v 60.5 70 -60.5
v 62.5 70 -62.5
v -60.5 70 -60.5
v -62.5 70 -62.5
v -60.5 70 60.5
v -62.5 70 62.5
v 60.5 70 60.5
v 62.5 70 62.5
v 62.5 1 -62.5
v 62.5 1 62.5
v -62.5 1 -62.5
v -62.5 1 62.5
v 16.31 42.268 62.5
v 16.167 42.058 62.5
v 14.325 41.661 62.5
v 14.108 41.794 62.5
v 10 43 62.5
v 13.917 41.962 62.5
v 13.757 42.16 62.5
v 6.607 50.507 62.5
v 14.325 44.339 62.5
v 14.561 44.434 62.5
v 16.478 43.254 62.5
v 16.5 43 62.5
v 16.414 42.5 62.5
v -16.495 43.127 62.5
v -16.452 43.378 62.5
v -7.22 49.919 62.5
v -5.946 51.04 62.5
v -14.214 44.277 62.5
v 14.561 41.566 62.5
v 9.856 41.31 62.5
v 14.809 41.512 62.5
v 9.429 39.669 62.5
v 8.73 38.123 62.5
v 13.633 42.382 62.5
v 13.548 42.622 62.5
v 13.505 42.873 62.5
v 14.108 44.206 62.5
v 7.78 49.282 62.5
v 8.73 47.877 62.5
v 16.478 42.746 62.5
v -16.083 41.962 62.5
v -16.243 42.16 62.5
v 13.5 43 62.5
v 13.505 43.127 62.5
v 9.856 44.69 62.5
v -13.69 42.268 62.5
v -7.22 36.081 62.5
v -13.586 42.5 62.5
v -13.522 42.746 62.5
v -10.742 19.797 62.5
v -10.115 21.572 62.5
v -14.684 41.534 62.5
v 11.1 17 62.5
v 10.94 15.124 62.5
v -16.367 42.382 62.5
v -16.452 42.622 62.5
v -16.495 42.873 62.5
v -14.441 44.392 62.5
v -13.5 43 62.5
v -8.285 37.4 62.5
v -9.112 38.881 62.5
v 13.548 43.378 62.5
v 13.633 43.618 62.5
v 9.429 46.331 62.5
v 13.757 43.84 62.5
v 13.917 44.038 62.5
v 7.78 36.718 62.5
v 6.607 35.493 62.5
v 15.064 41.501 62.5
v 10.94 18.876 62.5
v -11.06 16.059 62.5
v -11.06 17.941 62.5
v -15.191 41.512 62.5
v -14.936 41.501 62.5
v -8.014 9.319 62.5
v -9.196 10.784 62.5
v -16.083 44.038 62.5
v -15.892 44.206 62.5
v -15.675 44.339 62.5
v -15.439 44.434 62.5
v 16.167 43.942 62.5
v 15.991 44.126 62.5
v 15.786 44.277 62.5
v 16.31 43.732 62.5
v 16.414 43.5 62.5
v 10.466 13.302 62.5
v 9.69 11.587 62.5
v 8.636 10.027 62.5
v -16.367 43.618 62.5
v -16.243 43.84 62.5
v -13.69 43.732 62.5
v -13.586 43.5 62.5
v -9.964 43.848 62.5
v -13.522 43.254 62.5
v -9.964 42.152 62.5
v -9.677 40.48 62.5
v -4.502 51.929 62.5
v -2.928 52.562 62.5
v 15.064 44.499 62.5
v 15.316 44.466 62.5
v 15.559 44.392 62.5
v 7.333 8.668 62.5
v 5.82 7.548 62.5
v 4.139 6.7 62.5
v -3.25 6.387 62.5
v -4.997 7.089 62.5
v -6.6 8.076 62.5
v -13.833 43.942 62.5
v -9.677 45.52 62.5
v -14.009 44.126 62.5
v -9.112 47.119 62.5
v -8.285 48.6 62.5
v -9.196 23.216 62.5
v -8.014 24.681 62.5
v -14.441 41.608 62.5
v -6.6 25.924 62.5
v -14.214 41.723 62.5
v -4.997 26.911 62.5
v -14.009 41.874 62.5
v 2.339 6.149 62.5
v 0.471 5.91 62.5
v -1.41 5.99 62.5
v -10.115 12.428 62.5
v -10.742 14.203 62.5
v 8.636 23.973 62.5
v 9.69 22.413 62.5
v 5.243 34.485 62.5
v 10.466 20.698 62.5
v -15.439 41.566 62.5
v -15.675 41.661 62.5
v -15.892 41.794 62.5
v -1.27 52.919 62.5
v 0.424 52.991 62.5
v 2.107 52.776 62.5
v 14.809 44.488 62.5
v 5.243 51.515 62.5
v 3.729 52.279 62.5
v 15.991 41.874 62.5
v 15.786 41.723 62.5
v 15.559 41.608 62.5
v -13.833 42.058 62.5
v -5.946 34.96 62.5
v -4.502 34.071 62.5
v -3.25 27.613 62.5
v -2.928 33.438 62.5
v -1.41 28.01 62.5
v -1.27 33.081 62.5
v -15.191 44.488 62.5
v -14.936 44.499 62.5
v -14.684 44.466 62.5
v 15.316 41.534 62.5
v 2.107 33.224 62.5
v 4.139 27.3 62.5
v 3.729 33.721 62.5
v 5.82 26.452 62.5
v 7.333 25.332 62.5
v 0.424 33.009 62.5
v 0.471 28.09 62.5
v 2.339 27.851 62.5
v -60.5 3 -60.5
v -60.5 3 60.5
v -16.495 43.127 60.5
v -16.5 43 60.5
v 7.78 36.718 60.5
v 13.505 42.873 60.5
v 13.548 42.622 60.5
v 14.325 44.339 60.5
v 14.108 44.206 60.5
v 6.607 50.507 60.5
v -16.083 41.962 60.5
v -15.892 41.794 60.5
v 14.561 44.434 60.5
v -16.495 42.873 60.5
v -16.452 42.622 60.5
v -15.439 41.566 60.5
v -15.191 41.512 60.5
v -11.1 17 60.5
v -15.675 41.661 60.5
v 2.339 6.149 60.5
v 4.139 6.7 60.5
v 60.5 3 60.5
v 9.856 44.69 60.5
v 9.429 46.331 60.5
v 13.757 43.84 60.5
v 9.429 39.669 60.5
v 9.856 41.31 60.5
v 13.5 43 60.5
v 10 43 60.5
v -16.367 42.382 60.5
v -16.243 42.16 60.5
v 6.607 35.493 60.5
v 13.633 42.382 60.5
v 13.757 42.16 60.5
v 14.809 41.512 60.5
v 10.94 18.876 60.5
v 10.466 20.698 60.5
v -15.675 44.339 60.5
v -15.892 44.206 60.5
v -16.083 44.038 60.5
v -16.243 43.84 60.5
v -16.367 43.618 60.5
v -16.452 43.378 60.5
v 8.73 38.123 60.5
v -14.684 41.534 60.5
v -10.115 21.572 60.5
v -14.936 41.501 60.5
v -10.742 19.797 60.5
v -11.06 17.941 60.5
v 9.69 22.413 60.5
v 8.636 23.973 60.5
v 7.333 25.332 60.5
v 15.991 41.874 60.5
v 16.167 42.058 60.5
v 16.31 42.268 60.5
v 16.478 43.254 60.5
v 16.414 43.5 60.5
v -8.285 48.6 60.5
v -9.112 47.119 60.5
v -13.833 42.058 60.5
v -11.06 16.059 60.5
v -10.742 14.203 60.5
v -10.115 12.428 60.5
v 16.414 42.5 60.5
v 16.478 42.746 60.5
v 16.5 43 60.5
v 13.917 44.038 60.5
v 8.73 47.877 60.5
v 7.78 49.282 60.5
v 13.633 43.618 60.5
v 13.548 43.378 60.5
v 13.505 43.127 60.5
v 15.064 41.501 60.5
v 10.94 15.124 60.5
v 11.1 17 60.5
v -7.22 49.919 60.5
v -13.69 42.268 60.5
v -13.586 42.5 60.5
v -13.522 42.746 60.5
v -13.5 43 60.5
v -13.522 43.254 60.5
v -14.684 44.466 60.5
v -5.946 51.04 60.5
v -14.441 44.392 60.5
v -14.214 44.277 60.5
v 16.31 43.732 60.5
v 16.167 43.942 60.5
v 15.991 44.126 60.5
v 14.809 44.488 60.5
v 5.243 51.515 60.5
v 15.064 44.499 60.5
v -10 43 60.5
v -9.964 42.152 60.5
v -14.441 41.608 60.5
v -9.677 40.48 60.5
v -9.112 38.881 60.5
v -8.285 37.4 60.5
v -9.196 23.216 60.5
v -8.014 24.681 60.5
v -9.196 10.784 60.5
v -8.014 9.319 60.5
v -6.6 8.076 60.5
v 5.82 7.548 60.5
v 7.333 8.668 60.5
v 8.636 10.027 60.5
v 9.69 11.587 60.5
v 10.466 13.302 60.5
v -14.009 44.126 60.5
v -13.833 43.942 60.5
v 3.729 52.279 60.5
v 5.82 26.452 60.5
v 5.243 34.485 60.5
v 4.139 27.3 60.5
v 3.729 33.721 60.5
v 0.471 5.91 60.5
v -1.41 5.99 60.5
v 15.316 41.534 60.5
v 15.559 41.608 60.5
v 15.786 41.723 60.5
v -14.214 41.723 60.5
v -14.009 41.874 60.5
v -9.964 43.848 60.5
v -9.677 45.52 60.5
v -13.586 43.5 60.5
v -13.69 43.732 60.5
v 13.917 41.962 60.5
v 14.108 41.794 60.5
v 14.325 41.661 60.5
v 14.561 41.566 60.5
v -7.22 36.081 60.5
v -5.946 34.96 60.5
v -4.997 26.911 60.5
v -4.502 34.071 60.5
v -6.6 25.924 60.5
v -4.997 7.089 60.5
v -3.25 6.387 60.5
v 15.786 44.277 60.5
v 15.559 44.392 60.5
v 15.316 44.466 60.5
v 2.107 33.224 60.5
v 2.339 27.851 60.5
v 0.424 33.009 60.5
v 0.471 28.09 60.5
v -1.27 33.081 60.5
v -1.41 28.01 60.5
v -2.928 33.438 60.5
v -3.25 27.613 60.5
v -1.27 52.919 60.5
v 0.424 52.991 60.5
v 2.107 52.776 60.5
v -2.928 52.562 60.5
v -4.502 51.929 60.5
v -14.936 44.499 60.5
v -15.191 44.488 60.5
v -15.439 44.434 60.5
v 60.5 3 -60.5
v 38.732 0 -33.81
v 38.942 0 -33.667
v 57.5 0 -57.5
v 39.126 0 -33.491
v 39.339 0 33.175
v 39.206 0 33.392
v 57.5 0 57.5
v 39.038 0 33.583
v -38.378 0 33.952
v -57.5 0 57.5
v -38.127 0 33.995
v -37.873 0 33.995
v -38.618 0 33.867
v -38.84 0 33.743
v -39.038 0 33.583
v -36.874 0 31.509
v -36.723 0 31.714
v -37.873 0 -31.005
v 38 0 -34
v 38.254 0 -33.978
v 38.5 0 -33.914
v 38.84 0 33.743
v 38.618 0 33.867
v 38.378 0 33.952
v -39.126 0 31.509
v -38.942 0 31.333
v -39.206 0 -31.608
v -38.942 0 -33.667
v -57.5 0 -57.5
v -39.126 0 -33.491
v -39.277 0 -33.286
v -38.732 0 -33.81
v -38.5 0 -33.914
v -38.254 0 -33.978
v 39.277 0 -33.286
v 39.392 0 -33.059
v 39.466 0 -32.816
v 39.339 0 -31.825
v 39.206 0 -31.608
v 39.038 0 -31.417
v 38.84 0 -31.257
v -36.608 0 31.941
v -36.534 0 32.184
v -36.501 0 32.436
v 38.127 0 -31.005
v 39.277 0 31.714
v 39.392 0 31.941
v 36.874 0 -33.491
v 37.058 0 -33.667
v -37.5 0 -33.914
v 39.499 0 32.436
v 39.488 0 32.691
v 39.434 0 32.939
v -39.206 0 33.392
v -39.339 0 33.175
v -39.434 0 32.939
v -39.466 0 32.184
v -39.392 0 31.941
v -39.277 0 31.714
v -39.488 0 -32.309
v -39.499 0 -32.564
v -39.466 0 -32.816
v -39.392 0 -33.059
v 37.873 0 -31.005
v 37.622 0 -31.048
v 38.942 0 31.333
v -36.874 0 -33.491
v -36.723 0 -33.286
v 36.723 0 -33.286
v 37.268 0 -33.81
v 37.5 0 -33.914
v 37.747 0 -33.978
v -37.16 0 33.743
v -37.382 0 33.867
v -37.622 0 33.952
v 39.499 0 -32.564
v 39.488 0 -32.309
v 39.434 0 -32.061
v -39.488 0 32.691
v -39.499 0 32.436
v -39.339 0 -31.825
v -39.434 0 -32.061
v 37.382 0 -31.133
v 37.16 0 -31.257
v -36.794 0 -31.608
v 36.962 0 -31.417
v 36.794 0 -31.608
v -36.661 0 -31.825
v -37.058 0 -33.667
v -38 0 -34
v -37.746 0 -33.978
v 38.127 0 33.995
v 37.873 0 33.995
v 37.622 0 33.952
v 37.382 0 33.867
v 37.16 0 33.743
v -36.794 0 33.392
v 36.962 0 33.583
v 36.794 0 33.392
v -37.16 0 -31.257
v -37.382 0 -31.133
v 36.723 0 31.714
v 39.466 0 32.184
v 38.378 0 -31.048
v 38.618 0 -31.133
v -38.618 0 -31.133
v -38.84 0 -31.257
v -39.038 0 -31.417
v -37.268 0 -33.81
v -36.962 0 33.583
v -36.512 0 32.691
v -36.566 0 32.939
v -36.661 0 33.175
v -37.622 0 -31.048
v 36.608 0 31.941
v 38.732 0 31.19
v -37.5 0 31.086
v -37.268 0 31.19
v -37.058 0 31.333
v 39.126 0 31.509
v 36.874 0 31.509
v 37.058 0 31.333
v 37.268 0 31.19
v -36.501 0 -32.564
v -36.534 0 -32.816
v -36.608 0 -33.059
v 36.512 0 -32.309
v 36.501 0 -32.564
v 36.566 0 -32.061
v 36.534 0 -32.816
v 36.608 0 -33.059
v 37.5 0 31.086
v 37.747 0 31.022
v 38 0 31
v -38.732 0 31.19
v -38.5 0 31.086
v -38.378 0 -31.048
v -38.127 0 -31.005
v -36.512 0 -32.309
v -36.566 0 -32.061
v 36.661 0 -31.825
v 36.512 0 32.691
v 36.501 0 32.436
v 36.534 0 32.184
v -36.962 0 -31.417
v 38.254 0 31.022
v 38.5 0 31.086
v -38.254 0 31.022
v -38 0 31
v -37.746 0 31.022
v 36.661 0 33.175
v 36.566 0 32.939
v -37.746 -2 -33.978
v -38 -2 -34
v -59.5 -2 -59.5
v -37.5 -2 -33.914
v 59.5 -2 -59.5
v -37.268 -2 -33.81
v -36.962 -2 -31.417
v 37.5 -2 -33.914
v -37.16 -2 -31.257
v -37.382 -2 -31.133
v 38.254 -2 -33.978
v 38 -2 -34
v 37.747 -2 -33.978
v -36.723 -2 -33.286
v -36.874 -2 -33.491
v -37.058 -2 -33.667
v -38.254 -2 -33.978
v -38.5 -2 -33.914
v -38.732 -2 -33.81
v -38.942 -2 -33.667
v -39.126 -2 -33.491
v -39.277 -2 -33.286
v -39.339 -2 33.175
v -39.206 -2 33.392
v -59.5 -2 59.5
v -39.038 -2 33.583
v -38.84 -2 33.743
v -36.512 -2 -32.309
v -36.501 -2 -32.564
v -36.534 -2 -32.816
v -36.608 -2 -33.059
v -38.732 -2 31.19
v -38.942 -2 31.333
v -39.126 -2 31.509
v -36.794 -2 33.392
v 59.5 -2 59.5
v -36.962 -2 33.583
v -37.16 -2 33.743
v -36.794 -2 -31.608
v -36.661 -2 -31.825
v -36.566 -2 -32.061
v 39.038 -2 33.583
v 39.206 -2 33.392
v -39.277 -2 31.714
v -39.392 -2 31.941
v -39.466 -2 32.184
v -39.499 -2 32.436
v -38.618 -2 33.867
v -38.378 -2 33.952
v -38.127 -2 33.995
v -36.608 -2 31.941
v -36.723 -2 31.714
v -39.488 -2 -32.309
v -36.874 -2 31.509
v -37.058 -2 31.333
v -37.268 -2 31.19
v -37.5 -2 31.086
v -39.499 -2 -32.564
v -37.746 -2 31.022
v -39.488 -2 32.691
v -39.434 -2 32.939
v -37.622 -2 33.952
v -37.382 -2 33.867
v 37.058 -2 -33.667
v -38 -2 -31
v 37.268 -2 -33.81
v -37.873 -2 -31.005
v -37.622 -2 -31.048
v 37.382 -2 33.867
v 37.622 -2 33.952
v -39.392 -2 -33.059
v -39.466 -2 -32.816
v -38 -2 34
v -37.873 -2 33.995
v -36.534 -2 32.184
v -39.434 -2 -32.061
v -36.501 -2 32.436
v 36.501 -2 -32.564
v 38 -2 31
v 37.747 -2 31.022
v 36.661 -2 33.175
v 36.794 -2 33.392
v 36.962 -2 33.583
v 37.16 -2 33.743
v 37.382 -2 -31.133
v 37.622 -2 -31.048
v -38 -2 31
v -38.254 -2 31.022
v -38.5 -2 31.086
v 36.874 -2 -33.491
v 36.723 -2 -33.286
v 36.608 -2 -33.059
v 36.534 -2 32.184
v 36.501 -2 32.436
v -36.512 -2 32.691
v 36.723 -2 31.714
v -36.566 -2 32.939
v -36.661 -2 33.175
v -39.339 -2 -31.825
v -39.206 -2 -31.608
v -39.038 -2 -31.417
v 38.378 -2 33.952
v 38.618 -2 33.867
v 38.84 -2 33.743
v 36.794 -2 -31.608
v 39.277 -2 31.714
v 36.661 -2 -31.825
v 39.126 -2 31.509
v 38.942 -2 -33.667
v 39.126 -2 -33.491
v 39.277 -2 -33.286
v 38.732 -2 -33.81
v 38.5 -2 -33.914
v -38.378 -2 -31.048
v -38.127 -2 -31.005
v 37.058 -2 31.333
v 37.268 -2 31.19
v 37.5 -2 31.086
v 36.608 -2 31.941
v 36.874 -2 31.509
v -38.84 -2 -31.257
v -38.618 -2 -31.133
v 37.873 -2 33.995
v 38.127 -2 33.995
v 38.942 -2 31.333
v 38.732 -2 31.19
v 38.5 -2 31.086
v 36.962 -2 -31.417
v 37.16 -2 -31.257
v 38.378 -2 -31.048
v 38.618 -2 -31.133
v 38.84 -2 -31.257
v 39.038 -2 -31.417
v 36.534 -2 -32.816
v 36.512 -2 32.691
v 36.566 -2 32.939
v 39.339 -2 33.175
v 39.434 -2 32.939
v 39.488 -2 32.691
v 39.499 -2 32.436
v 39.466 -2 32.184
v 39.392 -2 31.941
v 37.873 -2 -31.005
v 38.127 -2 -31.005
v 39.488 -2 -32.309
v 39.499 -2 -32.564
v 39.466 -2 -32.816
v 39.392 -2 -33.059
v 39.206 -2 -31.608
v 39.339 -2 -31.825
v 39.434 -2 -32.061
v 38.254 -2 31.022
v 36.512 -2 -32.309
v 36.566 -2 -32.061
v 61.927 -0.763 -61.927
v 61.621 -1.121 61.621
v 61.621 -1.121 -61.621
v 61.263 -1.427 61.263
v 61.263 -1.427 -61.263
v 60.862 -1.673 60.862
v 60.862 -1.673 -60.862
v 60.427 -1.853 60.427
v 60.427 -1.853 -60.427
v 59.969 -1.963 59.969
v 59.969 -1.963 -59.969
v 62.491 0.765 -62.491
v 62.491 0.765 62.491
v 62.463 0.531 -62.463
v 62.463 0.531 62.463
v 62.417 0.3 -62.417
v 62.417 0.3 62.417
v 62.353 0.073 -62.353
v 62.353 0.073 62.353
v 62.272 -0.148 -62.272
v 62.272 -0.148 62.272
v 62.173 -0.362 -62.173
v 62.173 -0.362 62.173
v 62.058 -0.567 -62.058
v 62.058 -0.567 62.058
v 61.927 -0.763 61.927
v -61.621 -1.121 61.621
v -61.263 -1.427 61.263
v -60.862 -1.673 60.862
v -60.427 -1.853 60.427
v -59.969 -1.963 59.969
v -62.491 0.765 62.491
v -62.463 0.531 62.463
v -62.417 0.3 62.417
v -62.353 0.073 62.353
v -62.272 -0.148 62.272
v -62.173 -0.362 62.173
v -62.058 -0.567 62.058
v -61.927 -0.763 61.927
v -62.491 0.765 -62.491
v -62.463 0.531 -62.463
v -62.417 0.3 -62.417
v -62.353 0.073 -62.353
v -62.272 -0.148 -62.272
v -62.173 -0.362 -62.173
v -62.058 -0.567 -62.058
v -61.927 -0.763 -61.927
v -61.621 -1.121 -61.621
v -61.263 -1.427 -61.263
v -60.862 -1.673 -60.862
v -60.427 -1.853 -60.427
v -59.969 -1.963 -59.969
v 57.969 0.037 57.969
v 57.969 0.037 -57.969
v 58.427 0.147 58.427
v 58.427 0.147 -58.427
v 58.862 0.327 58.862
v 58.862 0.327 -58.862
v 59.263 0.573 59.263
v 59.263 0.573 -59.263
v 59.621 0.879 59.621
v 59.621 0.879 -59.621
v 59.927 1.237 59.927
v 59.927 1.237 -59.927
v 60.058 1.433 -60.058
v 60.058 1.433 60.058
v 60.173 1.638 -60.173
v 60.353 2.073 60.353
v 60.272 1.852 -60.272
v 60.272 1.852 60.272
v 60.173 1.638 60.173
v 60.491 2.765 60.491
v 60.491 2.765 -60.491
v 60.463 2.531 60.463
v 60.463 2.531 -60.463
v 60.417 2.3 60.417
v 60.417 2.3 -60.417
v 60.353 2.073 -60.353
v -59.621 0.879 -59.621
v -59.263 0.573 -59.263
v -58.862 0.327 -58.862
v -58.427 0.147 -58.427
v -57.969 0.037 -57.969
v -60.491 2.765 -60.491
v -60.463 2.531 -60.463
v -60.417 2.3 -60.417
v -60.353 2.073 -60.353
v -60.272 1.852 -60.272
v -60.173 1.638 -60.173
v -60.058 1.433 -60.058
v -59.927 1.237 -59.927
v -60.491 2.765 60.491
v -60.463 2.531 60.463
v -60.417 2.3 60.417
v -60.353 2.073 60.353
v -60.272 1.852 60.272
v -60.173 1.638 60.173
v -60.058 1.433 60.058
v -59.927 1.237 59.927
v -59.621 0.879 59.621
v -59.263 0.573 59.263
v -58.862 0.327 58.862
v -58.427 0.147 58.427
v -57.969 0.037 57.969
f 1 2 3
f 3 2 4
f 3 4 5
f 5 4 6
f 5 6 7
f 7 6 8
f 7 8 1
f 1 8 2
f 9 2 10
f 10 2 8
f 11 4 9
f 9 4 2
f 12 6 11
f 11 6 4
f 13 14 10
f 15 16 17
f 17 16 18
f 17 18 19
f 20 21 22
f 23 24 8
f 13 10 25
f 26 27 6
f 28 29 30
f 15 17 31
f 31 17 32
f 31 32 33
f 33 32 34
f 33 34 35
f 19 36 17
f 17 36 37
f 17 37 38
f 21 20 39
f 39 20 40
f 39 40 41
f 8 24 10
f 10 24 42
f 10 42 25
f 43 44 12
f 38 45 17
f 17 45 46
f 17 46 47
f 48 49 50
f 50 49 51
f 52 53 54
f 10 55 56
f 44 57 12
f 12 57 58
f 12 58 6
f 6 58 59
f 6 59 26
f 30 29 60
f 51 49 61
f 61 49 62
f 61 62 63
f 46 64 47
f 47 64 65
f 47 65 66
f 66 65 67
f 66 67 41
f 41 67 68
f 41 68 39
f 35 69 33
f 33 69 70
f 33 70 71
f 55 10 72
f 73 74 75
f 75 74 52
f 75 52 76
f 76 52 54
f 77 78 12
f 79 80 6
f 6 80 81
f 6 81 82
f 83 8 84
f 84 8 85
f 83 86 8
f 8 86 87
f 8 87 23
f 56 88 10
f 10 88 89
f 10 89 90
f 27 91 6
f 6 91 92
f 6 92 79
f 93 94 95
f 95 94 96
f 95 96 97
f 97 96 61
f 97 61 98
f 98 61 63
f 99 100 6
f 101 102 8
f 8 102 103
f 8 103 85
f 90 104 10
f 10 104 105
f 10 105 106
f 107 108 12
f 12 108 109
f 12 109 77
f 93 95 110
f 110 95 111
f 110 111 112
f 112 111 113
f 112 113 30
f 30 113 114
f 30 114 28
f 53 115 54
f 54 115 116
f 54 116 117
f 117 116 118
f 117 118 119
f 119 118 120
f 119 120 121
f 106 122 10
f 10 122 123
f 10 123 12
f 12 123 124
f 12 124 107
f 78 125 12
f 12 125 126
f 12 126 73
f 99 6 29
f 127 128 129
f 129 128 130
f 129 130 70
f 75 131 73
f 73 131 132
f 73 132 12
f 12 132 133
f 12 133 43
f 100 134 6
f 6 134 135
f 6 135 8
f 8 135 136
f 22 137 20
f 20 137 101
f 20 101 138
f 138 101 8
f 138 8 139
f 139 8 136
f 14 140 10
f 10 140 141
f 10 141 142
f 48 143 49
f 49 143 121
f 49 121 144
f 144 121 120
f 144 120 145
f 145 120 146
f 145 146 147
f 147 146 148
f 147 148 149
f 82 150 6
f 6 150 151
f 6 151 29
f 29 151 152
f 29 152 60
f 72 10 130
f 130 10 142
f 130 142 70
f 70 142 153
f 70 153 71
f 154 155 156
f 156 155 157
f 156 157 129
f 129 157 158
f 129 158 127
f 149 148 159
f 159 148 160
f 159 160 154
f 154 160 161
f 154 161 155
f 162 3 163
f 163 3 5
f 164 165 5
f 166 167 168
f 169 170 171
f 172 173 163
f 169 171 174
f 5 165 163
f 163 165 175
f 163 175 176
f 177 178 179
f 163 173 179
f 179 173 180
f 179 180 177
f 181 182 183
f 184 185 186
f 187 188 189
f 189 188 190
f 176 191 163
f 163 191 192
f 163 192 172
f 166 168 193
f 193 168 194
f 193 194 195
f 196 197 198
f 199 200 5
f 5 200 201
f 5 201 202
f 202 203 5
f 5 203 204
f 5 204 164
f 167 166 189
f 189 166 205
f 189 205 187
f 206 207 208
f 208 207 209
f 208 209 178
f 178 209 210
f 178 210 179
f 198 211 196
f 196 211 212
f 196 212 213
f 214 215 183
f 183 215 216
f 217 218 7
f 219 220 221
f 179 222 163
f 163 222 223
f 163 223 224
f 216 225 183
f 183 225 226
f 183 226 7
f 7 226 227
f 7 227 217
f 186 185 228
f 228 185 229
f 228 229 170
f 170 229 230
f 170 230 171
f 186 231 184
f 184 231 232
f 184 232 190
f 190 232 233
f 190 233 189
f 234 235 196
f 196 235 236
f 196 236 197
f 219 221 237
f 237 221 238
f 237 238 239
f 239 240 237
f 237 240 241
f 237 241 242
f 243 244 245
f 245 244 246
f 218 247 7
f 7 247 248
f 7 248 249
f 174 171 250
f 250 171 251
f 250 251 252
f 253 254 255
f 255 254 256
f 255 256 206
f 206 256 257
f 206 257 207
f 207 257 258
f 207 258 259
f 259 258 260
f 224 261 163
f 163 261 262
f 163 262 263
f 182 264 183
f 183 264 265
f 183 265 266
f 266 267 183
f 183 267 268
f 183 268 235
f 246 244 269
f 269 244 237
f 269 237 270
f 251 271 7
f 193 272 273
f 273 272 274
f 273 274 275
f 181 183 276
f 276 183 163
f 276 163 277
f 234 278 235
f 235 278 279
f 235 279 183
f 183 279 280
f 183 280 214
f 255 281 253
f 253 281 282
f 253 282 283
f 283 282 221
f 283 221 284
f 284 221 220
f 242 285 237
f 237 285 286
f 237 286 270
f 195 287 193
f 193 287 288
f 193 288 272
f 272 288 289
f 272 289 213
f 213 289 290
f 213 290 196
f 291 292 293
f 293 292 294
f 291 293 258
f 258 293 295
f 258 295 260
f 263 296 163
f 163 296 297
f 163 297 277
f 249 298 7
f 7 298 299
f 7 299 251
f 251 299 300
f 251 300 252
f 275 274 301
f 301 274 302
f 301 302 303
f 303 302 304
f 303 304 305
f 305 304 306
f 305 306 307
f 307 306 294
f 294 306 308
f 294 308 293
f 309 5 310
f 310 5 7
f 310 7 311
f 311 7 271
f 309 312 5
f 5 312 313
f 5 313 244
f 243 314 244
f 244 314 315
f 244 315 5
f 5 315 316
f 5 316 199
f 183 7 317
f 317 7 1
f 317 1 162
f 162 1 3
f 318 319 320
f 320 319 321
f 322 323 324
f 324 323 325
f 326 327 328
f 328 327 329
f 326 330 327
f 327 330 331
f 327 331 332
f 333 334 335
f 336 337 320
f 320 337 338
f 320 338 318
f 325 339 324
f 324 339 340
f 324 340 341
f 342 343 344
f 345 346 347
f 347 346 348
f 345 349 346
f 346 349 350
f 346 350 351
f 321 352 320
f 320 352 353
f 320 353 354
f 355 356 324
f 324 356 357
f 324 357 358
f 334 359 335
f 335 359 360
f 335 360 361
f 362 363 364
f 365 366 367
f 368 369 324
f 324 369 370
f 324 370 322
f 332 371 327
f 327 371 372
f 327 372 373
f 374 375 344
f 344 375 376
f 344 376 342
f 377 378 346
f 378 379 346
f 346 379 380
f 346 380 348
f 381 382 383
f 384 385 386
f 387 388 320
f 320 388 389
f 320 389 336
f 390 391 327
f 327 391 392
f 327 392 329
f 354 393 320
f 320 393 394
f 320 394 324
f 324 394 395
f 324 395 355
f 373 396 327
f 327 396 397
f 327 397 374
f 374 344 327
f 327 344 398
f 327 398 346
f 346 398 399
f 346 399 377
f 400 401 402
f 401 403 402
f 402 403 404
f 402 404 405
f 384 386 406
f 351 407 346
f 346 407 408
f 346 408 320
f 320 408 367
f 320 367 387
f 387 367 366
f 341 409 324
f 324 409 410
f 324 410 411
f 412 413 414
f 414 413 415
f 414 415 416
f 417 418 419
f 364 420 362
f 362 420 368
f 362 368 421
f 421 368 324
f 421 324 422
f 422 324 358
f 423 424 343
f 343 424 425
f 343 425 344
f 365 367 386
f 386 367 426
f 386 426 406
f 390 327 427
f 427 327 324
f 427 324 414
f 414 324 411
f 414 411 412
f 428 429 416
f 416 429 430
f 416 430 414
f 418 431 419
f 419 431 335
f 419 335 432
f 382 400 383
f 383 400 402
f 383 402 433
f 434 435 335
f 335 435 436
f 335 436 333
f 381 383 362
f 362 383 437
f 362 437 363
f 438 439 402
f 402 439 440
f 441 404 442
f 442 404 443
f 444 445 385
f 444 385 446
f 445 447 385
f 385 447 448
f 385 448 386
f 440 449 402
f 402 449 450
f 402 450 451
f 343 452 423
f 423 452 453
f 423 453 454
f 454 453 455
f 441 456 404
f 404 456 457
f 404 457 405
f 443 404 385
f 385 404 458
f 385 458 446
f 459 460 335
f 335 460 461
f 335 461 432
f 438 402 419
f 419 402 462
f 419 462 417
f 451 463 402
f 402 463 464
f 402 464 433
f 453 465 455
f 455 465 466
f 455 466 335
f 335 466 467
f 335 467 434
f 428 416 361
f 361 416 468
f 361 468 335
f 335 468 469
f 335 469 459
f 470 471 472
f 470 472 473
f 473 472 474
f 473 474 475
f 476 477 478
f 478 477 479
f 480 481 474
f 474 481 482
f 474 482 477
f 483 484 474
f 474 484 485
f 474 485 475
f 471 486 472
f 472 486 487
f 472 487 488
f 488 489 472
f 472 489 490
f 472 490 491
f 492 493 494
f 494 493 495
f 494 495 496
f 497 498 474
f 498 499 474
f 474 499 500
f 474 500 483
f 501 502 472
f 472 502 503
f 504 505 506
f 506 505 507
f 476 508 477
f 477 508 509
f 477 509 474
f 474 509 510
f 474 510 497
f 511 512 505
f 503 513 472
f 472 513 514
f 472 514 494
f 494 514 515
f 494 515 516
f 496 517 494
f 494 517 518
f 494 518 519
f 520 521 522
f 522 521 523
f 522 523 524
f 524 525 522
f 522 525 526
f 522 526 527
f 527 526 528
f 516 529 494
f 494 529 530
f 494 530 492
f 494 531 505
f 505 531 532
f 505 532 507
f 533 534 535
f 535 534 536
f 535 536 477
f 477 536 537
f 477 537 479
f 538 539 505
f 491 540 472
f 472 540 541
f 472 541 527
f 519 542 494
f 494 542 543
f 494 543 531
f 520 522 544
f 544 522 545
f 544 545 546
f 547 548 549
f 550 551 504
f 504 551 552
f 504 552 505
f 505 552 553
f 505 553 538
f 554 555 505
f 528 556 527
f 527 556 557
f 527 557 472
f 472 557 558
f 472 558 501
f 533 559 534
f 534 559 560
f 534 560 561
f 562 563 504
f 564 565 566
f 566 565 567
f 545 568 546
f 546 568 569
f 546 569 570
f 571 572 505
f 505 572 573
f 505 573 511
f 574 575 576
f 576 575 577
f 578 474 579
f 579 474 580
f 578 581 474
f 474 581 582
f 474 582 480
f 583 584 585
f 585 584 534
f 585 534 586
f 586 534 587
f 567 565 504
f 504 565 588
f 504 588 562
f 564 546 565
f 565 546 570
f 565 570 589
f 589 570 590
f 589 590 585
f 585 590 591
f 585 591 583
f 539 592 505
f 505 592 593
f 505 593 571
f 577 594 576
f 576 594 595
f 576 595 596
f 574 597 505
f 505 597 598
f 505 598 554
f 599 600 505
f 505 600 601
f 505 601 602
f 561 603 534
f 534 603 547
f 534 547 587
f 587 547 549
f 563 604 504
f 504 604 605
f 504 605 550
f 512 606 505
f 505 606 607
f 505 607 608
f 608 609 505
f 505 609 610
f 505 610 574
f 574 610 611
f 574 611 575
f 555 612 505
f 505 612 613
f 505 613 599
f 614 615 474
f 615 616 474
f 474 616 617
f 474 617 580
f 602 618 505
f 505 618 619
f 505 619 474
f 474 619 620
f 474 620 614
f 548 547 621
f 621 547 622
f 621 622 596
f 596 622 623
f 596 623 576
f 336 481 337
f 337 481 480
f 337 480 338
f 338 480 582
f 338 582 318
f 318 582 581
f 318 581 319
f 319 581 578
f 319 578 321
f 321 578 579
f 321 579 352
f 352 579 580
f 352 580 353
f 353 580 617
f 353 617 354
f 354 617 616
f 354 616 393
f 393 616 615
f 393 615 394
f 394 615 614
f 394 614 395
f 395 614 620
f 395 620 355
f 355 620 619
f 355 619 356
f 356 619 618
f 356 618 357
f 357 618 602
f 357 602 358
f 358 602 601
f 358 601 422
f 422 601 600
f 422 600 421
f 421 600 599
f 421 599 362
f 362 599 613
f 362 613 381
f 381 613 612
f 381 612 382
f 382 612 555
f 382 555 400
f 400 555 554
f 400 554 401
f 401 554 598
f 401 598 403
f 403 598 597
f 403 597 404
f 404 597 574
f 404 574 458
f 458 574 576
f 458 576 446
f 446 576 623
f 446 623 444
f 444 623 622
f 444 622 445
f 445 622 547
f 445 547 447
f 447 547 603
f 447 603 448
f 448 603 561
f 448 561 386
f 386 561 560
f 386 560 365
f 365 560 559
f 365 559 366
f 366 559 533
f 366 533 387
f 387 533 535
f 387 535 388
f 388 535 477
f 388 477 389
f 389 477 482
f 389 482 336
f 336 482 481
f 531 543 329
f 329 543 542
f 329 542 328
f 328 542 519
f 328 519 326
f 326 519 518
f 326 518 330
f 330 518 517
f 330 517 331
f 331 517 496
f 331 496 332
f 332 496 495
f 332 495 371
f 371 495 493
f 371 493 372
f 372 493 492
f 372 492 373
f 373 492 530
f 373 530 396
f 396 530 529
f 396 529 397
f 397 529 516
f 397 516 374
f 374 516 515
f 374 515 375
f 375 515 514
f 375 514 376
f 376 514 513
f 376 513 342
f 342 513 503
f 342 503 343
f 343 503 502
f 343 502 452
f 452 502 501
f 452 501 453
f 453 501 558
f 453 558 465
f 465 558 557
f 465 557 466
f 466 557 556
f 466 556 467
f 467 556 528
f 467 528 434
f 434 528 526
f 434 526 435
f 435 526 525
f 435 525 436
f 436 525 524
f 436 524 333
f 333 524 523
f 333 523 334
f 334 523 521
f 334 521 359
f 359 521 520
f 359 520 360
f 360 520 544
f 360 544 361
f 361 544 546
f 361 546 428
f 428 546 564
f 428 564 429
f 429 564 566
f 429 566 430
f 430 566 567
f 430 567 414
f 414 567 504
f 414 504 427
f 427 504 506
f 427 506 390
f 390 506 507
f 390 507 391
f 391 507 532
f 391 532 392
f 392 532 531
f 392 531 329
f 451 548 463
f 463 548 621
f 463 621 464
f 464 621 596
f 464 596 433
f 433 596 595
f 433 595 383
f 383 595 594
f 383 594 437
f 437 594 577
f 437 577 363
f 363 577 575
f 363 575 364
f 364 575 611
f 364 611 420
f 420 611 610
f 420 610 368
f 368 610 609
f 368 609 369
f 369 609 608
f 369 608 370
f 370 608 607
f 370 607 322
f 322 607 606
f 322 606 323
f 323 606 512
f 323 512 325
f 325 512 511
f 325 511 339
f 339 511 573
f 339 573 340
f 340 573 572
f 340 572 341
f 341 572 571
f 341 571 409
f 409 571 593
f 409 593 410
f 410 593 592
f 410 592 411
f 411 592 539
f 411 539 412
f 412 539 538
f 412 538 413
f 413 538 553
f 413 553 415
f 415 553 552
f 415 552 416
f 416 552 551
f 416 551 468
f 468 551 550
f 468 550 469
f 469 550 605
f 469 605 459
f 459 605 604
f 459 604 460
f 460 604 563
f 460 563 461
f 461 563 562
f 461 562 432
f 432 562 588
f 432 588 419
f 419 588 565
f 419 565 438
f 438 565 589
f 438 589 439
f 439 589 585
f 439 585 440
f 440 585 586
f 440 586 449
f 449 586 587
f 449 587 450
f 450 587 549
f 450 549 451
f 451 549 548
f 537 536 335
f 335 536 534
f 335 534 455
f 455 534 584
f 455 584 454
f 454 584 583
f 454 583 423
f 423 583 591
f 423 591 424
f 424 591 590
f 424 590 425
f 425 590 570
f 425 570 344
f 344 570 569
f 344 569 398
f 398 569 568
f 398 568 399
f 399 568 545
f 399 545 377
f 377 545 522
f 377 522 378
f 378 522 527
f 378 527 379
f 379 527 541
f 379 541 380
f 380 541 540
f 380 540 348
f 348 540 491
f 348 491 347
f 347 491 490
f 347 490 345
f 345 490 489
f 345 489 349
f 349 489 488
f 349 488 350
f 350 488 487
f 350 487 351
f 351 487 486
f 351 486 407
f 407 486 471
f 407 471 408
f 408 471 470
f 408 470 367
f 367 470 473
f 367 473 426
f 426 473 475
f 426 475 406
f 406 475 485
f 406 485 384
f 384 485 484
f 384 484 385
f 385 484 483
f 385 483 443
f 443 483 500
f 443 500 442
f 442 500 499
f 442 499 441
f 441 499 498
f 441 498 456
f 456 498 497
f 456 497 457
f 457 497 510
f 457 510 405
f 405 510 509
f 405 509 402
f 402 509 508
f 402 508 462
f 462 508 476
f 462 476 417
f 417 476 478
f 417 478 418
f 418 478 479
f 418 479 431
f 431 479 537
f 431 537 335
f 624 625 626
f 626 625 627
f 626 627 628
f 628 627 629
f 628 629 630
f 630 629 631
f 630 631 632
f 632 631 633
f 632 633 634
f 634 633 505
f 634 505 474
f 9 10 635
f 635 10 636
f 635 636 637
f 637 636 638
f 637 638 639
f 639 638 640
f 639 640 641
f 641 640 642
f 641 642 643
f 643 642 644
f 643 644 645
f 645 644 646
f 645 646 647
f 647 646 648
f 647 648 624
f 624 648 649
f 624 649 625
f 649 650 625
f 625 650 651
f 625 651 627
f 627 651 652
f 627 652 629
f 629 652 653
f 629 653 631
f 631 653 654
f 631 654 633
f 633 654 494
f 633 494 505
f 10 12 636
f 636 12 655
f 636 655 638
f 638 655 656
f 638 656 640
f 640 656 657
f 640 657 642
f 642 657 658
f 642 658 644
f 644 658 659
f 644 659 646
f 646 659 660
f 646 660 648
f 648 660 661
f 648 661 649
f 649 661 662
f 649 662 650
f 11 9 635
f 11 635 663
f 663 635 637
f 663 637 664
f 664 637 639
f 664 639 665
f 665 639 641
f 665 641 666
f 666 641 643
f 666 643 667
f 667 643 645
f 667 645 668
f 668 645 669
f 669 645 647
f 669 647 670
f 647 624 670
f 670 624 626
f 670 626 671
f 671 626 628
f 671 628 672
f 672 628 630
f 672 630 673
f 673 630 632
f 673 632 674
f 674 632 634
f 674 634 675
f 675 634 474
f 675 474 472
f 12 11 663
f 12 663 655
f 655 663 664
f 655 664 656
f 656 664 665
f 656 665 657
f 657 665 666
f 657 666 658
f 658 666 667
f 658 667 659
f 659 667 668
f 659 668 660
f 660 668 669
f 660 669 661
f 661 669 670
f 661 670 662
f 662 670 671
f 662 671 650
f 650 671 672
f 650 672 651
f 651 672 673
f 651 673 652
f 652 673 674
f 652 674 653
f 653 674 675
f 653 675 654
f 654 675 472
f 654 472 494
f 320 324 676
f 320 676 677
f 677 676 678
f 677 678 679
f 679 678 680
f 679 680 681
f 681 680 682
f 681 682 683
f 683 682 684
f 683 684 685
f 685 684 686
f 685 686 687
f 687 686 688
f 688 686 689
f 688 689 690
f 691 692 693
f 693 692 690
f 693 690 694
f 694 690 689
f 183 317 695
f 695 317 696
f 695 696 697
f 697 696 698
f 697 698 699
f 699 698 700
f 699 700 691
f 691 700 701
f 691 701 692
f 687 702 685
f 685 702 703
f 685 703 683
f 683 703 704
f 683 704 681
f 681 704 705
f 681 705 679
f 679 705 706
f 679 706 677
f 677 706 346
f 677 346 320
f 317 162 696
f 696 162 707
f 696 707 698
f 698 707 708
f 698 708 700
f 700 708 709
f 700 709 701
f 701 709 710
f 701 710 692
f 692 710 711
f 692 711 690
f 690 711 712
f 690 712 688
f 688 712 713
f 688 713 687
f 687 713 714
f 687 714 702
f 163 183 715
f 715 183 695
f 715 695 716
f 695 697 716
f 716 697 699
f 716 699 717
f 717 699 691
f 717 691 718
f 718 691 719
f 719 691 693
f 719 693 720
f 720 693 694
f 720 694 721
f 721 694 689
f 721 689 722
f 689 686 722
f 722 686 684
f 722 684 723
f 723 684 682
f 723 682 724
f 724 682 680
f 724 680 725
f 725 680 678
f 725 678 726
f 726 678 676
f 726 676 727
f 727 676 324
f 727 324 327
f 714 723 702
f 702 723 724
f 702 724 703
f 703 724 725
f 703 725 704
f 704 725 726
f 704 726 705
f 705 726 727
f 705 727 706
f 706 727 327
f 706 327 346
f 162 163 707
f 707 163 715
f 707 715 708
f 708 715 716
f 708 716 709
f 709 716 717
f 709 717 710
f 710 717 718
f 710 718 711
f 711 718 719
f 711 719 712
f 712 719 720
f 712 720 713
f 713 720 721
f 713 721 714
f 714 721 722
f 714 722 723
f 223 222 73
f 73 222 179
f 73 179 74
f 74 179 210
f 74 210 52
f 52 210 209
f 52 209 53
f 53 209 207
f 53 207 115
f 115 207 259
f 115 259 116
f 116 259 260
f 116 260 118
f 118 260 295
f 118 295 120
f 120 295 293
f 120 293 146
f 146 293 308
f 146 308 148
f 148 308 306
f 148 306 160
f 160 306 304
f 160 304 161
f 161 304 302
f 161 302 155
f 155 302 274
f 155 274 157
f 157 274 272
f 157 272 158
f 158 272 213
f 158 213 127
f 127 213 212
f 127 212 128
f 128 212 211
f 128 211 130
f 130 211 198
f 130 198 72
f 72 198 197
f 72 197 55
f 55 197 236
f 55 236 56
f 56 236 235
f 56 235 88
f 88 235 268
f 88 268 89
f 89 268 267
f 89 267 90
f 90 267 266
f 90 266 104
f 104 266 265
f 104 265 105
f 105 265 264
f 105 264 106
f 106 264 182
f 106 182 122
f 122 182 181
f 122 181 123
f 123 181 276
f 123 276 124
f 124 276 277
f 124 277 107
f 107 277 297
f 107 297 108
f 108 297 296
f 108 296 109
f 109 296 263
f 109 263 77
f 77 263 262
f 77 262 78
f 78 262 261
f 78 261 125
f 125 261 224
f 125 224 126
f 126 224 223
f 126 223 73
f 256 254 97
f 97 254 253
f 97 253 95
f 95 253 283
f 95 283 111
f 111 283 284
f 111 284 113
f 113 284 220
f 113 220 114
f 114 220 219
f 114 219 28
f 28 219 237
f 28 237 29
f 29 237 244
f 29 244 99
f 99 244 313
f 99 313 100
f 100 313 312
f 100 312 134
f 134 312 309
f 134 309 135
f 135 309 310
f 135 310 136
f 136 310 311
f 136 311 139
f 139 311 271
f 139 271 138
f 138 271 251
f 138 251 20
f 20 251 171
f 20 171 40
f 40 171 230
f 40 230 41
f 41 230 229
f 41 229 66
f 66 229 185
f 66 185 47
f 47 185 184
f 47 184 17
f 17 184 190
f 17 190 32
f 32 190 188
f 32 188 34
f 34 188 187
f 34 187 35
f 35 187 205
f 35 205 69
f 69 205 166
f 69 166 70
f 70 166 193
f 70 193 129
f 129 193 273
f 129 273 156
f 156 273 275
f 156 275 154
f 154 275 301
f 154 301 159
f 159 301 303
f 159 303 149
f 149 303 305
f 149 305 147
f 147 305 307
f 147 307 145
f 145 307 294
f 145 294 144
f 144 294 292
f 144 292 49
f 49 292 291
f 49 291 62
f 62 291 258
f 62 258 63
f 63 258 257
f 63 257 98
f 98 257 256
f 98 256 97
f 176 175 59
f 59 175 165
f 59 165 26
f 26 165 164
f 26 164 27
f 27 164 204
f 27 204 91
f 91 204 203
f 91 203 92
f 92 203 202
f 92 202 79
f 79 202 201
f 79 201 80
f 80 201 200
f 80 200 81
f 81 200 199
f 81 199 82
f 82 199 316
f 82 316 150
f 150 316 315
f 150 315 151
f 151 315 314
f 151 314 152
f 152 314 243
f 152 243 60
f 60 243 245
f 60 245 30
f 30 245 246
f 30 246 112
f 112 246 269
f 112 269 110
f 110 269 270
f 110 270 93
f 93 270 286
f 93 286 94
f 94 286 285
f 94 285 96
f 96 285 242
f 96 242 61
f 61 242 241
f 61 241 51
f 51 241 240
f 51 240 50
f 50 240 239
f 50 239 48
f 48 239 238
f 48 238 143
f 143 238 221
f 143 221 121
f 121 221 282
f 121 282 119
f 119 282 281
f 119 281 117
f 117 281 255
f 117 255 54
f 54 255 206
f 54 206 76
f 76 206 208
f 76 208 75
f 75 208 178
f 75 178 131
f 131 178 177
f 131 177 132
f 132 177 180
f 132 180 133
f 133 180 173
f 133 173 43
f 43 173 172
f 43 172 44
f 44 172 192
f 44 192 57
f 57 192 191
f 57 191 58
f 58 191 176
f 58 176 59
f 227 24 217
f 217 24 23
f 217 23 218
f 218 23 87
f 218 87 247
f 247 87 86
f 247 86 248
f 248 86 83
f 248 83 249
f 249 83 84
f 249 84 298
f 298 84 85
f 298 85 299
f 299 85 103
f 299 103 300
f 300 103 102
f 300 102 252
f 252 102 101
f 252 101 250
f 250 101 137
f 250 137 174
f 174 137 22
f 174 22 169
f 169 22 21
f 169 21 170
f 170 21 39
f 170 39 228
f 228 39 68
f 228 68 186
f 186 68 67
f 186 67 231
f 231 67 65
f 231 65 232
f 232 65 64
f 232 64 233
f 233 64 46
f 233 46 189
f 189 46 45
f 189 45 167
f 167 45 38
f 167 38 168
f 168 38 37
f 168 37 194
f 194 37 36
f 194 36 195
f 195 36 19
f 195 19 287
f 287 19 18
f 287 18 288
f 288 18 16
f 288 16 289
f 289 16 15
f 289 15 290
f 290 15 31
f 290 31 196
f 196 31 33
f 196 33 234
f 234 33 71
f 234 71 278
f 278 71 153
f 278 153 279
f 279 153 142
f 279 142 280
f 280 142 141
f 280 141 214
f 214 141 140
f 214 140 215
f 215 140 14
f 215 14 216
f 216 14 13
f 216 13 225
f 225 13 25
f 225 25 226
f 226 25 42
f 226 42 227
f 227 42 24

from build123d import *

# Parameters (mm, degrees)
SKETCH1_W           = 125
SKETCH1_H           = 125
SKETCH1_W_2         = 121
SKETCH1_H_2         = 121
BOSS_EXTRUDE1_DEPTH = 70
SKETCH2_W           = 125
SKETCH2_H           = 125
BOSS_EXTRUDE2_DEPTH = 2
SKETCH3_R           = 1.5
CUT_EXTRUDE1_DEPTH  = 3
FILLET2_R           = 3
FILLET3_R           = 3
CUT_EXTRUDE2_REACH  = 158.305
SKETCH4_R           = 11.1
SKETCH4_R_2         = 10
CUT_EXTRUDE3_REACH  = 158.305
SKETCH5_R           = 1.5


with BuildPart() as part:
    # Sketch1 → Boss-Extrude1 (new body)
    with BuildSketch(Plane(origin=(0, 0, 0), x_dir=(1, 0, 0), z_dir=(0, 1, 0))):
        Rectangle(SKETCH1_W, SKETCH1_H)
        Rectangle(SKETCH1_W_2, SKETCH1_H_2, mode=Mode.SUBTRACT)
    extrude(amount=BOSS_EXTRUDE1_DEPTH)

    # Sketch2 → Boss-Extrude2 (add)
    with BuildSketch(Plane.XZ):
        Rectangle(SKETCH2_W, SKETCH2_H)
    extrude(amount=BOSS_EXTRUDE2_DEPTH)

    # Sketch3 → Cut-Extrude1 (cut)
    with BuildSketch(Plane.XZ.offset(2)):
        with Locations(Location((38, -32.5, 0), (0, 0, 270))):
            Circle(SKETCH3_R)
        with Locations(Location((-38, -32.5, 0), (0, 0, 270))):
            Circle(SKETCH3_R)
        with Locations(Location((38, 32.5, 0), (0, 0, 270))):
            Circle(SKETCH3_R)
        with Locations(Location((-38, 32.5, 0), (0, 0, 270))):
            Circle(SKETCH3_R)
    extrude(amount=-CUT_EXTRUDE1_DEPTH, mode=Mode.SUBTRACT)

    # Fillet2
    fillet2_edges = [part.edges().sort_by_distance(p)[0] for p in [
        (-62.5, -2, 0),
        (0, -2, -62.5),
        (62.5, -2, 0),
        (0, -2, 62.5),
    ]]
    fillet(fillet2_edges, radius=FILLET2_R)

    # Fillet3
    fillet3_edges = [part.edges().sort_by_distance(p)[0] for p in [
        (-60.5, 0, 0),
        (0, 0, 60.5),
        (60.5, 0, 0),
        (0, 0, -60.5),
    ]]
    fillet(fillet3_edges, radius=FILLET3_R)

    # Sketch4 → Cut-Extrude2 (cut, up to next)
    with BuildSketch(Plane.XY.offset(62.5), mode=Mode.PRIVATE) as cut_extrude2_sk1:
        with Locations((0, 17)):
            Circle(SKETCH4_R)
    cut_extrude2_tool1 = extrude(cut_extrude2_sk1.sketch, amount=-CUT_EXTRUDE2_REACH, mode=Mode.PRIVATE) & part.part
    # Sketch4 → Cut-Extrude2 (cut, up to next)
    with BuildSketch(Plane.XY.offset(62.5), mode=Mode.PRIVATE) as cut_extrude2_sk2:
        with Locations((0, 43)):
            Circle(SKETCH4_R_2)
    cut_extrude2_tool2 = extrude(cut_extrude2_sk2.sketch, amount=-CUT_EXTRUDE2_REACH, mode=Mode.PRIVATE) & part.part
    add(cut_extrude2_tool1.solids().sort_by_distance((0, 17, 62.5))[0], mode=Mode.SUBTRACT)
    add(cut_extrude2_tool2.solids().sort_by_distance((0, 43, 62.5))[0], mode=Mode.SUBTRACT)

    # Sketch5 → Cut-Extrude3 (cut, up to next)
    with BuildSketch(Plane.XY.offset(62.5), mode=Mode.PRIVATE) as cut_extrude3_sk1:
        with Locations((-15, 43)):
            Circle(SKETCH5_R)
    cut_extrude3_tool1 = extrude(cut_extrude3_sk1.sketch, amount=-CUT_EXTRUDE3_REACH, mode=Mode.PRIVATE) & part.part
    # Sketch5 → Cut-Extrude3 (cut, up to next)
    with BuildSketch(Plane.XY.offset(62.5), mode=Mode.PRIVATE) as cut_extrude3_sk2:
        with Locations(Location((15, 43, 0), (0, 0, 180))):
            Circle(SKETCH5_R)
    cut_extrude3_tool2 = extrude(cut_extrude3_sk2.sketch, amount=-CUT_EXTRUDE3_REACH, mode=Mode.PRIVATE) & part.part
    add(cut_extrude3_tool1.solids().sort_by_distance((-15, 43, 62.5))[0], mode=Mode.SUBTRACT)
    add(cut_extrude3_tool2.solids().sort_by_distance((15, 43, 62.5))[0], mode=Mode.SUBTRACT)


solid = part.part
